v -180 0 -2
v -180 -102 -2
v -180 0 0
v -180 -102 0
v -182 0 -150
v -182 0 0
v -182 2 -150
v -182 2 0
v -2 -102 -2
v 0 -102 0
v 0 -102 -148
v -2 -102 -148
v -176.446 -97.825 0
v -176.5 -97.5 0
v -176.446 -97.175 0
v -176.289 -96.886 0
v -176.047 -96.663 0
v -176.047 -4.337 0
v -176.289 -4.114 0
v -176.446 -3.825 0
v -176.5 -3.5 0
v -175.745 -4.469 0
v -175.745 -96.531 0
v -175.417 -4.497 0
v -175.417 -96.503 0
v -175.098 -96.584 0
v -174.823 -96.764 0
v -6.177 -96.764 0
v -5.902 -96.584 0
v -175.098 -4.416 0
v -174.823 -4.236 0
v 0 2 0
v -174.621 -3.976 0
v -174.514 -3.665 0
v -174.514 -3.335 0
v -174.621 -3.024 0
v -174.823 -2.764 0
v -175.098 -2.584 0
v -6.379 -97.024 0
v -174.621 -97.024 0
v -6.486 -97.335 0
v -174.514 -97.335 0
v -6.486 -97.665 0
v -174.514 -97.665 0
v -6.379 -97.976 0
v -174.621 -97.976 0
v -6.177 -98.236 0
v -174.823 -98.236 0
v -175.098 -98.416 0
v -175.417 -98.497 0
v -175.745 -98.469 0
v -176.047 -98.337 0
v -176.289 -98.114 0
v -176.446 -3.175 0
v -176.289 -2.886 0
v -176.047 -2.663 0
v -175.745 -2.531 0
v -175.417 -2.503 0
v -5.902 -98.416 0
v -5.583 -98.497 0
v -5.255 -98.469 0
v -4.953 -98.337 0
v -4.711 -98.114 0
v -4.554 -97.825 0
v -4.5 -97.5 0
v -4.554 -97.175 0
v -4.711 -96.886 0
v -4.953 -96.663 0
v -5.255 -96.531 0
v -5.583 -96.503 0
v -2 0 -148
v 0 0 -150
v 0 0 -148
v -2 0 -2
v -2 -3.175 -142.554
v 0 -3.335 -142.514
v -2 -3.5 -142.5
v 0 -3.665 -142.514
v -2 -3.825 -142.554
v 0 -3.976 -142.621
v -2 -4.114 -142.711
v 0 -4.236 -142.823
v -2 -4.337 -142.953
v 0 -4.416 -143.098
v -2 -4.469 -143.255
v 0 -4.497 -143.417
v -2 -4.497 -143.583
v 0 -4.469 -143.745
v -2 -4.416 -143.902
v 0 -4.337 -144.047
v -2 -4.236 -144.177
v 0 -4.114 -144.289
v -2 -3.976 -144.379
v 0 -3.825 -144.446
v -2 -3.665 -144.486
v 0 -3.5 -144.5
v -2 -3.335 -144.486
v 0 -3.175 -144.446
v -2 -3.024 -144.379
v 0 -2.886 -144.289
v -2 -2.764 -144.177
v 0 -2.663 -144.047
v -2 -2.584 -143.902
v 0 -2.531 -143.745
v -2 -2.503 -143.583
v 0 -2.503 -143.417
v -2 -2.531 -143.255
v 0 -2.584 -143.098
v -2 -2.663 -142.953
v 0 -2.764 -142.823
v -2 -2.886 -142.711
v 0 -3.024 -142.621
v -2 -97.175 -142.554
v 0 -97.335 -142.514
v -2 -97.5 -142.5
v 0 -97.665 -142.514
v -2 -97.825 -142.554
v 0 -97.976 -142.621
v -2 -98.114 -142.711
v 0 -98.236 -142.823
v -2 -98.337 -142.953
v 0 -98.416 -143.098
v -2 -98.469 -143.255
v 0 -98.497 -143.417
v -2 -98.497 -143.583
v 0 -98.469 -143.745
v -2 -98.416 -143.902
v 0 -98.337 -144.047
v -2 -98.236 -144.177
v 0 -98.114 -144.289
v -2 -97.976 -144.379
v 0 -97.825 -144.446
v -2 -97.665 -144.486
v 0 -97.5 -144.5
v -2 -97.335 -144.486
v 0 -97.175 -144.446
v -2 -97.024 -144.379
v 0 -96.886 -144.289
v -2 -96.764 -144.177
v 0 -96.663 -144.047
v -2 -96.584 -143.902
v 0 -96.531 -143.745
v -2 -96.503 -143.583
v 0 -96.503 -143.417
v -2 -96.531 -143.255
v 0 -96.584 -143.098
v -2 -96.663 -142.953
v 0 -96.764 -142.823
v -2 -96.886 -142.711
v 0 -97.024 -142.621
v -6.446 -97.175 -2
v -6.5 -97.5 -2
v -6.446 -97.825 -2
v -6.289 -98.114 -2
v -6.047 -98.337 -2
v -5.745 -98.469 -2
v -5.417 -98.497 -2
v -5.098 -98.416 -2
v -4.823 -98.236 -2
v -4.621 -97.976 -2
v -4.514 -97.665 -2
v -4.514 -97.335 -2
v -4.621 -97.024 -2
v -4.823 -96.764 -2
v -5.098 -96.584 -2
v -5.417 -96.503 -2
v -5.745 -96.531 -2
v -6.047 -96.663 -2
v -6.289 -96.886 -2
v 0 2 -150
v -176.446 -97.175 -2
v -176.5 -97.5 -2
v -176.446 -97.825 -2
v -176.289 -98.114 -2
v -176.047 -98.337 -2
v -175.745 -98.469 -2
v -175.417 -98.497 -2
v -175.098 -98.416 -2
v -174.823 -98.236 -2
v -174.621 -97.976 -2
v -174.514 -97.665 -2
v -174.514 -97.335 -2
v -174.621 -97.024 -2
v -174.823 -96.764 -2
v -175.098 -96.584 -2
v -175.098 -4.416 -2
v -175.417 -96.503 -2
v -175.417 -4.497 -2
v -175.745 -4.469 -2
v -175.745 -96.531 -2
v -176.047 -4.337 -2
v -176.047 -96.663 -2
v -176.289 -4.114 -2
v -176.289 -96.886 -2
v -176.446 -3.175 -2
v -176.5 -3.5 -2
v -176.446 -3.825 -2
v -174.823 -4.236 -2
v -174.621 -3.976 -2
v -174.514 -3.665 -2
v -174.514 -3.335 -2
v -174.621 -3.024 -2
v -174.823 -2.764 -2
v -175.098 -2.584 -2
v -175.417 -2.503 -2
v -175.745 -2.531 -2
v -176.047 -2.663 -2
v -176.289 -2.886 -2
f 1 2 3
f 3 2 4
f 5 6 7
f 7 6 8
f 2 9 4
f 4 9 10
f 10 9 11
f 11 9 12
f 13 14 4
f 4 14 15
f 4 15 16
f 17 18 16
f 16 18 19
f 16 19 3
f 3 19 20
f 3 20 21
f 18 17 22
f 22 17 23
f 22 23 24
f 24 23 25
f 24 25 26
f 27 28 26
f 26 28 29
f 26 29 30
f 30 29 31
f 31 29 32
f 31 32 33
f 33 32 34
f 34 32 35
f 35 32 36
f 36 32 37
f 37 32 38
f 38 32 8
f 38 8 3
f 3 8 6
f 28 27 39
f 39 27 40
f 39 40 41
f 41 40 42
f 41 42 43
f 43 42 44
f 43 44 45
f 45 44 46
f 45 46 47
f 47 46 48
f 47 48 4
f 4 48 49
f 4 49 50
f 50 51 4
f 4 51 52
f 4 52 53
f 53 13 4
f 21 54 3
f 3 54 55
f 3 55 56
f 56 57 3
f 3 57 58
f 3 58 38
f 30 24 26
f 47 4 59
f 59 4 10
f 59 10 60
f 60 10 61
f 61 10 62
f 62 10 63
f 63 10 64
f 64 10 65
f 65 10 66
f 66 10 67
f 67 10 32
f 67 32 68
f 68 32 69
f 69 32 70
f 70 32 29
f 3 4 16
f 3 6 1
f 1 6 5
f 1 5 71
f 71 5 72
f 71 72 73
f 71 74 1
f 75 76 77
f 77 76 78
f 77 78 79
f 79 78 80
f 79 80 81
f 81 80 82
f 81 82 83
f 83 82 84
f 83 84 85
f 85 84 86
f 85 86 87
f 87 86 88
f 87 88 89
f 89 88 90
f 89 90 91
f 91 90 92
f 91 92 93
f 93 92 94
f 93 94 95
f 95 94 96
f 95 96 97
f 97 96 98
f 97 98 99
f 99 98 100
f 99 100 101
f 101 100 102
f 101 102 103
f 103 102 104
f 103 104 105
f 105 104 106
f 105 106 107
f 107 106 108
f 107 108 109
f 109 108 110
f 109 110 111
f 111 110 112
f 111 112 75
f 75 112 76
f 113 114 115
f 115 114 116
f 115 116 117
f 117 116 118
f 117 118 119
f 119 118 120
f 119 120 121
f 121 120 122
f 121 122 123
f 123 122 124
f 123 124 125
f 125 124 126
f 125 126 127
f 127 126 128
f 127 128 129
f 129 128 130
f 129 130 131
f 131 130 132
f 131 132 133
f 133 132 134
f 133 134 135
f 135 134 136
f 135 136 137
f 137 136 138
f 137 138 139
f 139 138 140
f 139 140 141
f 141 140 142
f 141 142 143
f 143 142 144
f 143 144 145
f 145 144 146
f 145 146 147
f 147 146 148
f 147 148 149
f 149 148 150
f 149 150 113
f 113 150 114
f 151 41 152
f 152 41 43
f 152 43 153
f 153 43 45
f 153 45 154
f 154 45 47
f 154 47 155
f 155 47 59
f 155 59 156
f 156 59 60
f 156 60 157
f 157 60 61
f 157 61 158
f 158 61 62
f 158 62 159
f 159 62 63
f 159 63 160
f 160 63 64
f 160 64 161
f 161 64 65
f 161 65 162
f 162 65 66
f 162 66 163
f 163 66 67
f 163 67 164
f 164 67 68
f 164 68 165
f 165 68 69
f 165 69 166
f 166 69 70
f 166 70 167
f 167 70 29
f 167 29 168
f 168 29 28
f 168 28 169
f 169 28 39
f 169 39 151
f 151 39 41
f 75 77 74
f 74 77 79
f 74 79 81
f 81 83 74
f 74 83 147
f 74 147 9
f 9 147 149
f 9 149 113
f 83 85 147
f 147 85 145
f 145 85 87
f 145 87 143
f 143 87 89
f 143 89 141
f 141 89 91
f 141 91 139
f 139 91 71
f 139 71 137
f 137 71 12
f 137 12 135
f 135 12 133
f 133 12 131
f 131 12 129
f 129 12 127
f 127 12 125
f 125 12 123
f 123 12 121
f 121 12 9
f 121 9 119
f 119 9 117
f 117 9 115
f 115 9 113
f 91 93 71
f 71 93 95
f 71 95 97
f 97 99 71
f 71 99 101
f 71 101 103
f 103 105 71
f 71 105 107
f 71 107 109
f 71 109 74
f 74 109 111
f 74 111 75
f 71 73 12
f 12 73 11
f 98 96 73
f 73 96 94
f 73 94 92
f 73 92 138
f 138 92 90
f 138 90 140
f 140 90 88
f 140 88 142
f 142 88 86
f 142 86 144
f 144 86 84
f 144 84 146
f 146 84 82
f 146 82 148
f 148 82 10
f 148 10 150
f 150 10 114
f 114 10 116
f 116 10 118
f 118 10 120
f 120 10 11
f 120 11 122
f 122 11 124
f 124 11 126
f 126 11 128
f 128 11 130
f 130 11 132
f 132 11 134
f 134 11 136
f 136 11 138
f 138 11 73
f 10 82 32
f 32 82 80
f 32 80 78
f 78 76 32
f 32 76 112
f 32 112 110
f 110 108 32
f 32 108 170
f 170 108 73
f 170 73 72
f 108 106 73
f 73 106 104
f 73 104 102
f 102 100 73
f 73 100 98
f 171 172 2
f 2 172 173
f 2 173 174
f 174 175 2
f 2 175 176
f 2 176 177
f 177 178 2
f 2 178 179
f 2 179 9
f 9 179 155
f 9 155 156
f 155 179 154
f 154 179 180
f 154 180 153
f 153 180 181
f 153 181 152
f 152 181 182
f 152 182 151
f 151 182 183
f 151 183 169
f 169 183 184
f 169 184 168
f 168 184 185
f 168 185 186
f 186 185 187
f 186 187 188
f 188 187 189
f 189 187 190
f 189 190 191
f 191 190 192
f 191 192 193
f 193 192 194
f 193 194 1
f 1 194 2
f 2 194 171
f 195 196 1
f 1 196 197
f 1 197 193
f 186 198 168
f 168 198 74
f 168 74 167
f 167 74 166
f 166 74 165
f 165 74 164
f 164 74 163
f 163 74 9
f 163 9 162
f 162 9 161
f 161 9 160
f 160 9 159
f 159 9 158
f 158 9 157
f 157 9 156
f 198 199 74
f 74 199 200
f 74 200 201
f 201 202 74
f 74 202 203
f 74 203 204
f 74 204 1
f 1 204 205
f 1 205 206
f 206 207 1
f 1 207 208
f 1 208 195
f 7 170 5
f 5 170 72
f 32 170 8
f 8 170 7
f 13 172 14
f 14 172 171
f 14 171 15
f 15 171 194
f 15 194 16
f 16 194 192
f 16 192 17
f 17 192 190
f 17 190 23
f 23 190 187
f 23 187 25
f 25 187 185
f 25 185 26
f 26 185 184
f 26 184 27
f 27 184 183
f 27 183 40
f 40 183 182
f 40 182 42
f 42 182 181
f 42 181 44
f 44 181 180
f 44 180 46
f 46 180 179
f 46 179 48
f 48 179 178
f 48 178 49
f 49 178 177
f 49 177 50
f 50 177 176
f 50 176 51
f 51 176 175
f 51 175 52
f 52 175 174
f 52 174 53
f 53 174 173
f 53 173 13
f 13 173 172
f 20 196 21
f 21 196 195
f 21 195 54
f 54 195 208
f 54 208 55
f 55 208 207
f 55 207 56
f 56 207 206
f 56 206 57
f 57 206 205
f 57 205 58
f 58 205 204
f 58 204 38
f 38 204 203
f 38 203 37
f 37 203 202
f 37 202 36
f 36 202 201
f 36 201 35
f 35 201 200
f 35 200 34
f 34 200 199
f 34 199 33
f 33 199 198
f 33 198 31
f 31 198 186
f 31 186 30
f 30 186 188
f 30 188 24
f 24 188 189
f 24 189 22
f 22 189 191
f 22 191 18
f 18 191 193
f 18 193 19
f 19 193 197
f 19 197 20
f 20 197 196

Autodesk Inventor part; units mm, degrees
ref_plane "YZ Plane" through (0, 0, 0) normal (1, 0, 0) x (0, 1, 0)
ref_plane "XZ Plane" through (0, 0, 0) normal (0, 1, 0) x (-1, 0, 0)
ref_plane "XY Plane" through (0, 0, 0) normal (0, 0, 1) x (1, 0, 0)
sketch "Sketch1" plane through (0, 0, 0) normal (0, 1, 0) x (-1, 0, 0)
  line L0 (0, 0) -> (200, 0)
  line L1 (200, 0) -> (200, -150)
  line L2 (200, -150) -> (0, -150)
  line L3 (0, -150) -> (0, 0)
  dimension "d0" = 200
  dimension "d1" = 150
extrude "Extrusion1" add sketch "Sketch1" along normal blind 2
sketch "Sketch2" plane through (0, 0, 0) normal (0, -1, 0) x (1, 0, 0)
  line L0 (-200, 0) -> (0, 0) projected
  line L1 (-200, 0) -> (-198, 0)
  line L2 (-198, 0) -> (-198, -2)
  line L3 (-198, -2) -> (-2, -2)
  line L4 (-2, -2) -> (-2, -148)
  line L5 (-2, -148) -> (0, -148)
  line L6 (0, 0) -> (0, -150) projected
  dimension "d4" = 2
  dimension "d5" = 2
  dimension "d6" = 196
  dimension "d7" = 146
extrude "Extrusion2" add sketch "Sketch2" along normal blind 102
sketch "Sketch3" plane through (-200, 2, 0) normal (0, 0, 1) x (1, 0, 0)
  line L0 (0, -2) -> (2, -2) projected
  line L1 (2, -2) -> (6.5, -2)
  line L2 (198, -2) -> (2, -2) projected
  line L3 (6.5, -2) -> (6.5, -5.5)
  circle A0 centre (6.5, -5.5) radius 1
  line L4 (2, -104) -> (198, -104) projected
  line L5 (2, -104) -> (6.5, -104)
  line L6 (6.5, -104) -> (6.5, -99.5)
  circle A1 centre (6.5, -99.5) radius 1
  line L7 (200, -104) -> (2, -104) projected
  line L8 (200, -104) -> (194.5, -104)
  line L9 (194.5, -104) -> (194.5, -99.5)
  circle A2 centre (194.5, -99.5) radius 1
  point P0 (200, -2)
  dimension "d10" = 4.5
  dimension "d11" = 3.5
  dimension "d12" = 2
  dimension "d13" = 4.5
  dimension "d14" = 4.5
  dimension "d15" = 5.5
extrude "Extrusion3" cut sketch "Sketch3" against normal blind 10
sketch "Sketch4" plane through (0, 2, 0) normal (1, 0, 0) x (0, 0, -1)
  line L0 (148, -2) -> (148, -104) projected
  line L1 (148, -2) -> (143.5, -2)
  line L2 (150, -2) -> (0, -2) projected
  line L3 (143.5, -2) -> (143.5, -5.5)
  line L4 (148, -104) -> (143.5, -104)
  line L5 (143.5, -104) -> (143.5, -99.5)
  line L6 (143.5, -99.5) -> (148, -99.5)
  line L7 (148, -99.5) -> (148, -104)
  circle A0 centre (143.5, -99.5) radius 1
  circle A1 centre (143.5, -5.5) radius 1
  dimension "d18" = 4.5
  dimension "d19" = 3.5
  dimension "d20" = 4.5
  dimension "d21" = 4.5
  dimension "d22" = 2
extrude "Extrusion4" cut sketch "Sketch4" against normal blind 10 contours A1 | A0 L5 L6 | L6 L5 A0
sketch "Sketch5" plane through (0, 0, 0) normal (0, -1, 0) x (1, 0, 0)
  line L0 (-2, -148) -> (-2, -2) projected
  line L1 (-2, -75) -> (-172, -75)
  line L2 (-200, -150) -> (-200, 0) projected
  line L3 (-172, -75) -> (-174, -75)
  line L4 (-172, -75) -> (-172, -2)
  line L5 (-2, -2) -> (-198, -2) projected
  line L6 (0, -150) -> (-200, -150) projected
  line L7 (-172, -2) -> (-2, -2)
  line L8 (-2, -2) -> (-2, -150)
  line L9 (-2, -150) -> (-172, -150)
  line L10 (-172, -150) -> (-172, -2)
  line L11 (-200, 0) -> (0, 0) projected
  line L12 (-174, 0) -> (-2, 0)
  line L13 (-2, 0) -> (-2, -150)
  line L14 (-2, -150) -> (-174, -150)
  line L15 (-174, -150) -> (-174, 0)
  dimension "d28" = 170
  dimension "d29" = 2
sketch "Sketch6" plane through (-2, 0, -2) normal (0, 0, -1) x (-1, 0, 0)
  point P0 (-2, 0)
extrude "Extrusion5" cut sketch "Sketch5" along normal mid plane 1000 contours L15 L6 L2 L11
sketch "Sketch7" plane through (0, 0, 0) normal (0, -1, 0) x (1, 0, 0)
  line L0 (-174, -2) -> (-2, -2) projected
  line L1 (-174, -2) -> (-172, -2)
  line L2 (-172, -2) -> (-172, 0)
  line L3 (-174, 0) -> (0, 0) projected
  line L4 (-174, 0) -> (-172, 0)
  line L5 (-174, 0) -> (-174, -2)
  dimension "d32" = 2
extrude "Extrusion6" cut sketch "Sketch7" along normal blind 1000
sketch "Sketch9" plane through (0, 0, 0) normal (0, -1, 0) x (1, 0, 0)
  line L0 (0, -148) -> (0, 0) projected
  line L1 (0, -74) -> (-182, -74)
  line L2 (-174, 0) -> (-174, -150) projected
  line L3 (-174, 0) -> (-182, 0)
  line L4 (-182, 0) -> (-182, -150)
  line L5 (-182, -150) -> (-174, -150)
  line L6 (-174, -150) -> (-174, 0)
  dimension "d44" = 182
extrude "Extrusion8" add sketch "Sketch9" against normal blind 2
sketch "Sketch10" plane through (-2, -102, -2) normal (0, 0, -1) x (-1, 0, 0)
  line L0 (180, 102) -> (-2, 102) projected
  line L1 (180, 102) -> (178, 102)
  line L2 (170, 102) -> (170, 0) projected
  line L3 (178, 102) -> (170, 102)
  line L4 (170, 102) -> (170, 0)
  line L5 (170, 0) -> (178, 0)
  line L6 (178, 0) -> (178, 102)
  dimension "d47" = 2
extrude "Extrusion9" add sketch "Sketch10" against normal blind 2
sketch "Sketch11" plane through (-2, -102, -2) normal (0, 0, -1) x (-1, 0, 0)
  line L0 (0, 102) -> (178, 102) projected
  line L1 (178, 102) -> (178, 98.5)
  line L2 (178, 0) -> (178, 102) projected
  line L3 (178, 98.5) -> (173.5, 98.5)
  line L4 (178, 0) -> (0, 0) projected
  line L5 (178, 0) -> (173.5, 0)
  line L6 (173.5, 0) -> (173.5, 4.5)
  circle A0 centre (173.5, 98.5) radius 1
  circle A1 centre (173.5, 4.5) radius 1
  point P0 (-2, 102)
  dimension "d50" = 3.5
  dimension "d51" = 4.5
  dimension "d52" = 4.5
  dimension "d53" = 2
extrude "Extrusion10" cut sketch "Sketch11" against normal blind 2
properties part number "kevnat part2"
